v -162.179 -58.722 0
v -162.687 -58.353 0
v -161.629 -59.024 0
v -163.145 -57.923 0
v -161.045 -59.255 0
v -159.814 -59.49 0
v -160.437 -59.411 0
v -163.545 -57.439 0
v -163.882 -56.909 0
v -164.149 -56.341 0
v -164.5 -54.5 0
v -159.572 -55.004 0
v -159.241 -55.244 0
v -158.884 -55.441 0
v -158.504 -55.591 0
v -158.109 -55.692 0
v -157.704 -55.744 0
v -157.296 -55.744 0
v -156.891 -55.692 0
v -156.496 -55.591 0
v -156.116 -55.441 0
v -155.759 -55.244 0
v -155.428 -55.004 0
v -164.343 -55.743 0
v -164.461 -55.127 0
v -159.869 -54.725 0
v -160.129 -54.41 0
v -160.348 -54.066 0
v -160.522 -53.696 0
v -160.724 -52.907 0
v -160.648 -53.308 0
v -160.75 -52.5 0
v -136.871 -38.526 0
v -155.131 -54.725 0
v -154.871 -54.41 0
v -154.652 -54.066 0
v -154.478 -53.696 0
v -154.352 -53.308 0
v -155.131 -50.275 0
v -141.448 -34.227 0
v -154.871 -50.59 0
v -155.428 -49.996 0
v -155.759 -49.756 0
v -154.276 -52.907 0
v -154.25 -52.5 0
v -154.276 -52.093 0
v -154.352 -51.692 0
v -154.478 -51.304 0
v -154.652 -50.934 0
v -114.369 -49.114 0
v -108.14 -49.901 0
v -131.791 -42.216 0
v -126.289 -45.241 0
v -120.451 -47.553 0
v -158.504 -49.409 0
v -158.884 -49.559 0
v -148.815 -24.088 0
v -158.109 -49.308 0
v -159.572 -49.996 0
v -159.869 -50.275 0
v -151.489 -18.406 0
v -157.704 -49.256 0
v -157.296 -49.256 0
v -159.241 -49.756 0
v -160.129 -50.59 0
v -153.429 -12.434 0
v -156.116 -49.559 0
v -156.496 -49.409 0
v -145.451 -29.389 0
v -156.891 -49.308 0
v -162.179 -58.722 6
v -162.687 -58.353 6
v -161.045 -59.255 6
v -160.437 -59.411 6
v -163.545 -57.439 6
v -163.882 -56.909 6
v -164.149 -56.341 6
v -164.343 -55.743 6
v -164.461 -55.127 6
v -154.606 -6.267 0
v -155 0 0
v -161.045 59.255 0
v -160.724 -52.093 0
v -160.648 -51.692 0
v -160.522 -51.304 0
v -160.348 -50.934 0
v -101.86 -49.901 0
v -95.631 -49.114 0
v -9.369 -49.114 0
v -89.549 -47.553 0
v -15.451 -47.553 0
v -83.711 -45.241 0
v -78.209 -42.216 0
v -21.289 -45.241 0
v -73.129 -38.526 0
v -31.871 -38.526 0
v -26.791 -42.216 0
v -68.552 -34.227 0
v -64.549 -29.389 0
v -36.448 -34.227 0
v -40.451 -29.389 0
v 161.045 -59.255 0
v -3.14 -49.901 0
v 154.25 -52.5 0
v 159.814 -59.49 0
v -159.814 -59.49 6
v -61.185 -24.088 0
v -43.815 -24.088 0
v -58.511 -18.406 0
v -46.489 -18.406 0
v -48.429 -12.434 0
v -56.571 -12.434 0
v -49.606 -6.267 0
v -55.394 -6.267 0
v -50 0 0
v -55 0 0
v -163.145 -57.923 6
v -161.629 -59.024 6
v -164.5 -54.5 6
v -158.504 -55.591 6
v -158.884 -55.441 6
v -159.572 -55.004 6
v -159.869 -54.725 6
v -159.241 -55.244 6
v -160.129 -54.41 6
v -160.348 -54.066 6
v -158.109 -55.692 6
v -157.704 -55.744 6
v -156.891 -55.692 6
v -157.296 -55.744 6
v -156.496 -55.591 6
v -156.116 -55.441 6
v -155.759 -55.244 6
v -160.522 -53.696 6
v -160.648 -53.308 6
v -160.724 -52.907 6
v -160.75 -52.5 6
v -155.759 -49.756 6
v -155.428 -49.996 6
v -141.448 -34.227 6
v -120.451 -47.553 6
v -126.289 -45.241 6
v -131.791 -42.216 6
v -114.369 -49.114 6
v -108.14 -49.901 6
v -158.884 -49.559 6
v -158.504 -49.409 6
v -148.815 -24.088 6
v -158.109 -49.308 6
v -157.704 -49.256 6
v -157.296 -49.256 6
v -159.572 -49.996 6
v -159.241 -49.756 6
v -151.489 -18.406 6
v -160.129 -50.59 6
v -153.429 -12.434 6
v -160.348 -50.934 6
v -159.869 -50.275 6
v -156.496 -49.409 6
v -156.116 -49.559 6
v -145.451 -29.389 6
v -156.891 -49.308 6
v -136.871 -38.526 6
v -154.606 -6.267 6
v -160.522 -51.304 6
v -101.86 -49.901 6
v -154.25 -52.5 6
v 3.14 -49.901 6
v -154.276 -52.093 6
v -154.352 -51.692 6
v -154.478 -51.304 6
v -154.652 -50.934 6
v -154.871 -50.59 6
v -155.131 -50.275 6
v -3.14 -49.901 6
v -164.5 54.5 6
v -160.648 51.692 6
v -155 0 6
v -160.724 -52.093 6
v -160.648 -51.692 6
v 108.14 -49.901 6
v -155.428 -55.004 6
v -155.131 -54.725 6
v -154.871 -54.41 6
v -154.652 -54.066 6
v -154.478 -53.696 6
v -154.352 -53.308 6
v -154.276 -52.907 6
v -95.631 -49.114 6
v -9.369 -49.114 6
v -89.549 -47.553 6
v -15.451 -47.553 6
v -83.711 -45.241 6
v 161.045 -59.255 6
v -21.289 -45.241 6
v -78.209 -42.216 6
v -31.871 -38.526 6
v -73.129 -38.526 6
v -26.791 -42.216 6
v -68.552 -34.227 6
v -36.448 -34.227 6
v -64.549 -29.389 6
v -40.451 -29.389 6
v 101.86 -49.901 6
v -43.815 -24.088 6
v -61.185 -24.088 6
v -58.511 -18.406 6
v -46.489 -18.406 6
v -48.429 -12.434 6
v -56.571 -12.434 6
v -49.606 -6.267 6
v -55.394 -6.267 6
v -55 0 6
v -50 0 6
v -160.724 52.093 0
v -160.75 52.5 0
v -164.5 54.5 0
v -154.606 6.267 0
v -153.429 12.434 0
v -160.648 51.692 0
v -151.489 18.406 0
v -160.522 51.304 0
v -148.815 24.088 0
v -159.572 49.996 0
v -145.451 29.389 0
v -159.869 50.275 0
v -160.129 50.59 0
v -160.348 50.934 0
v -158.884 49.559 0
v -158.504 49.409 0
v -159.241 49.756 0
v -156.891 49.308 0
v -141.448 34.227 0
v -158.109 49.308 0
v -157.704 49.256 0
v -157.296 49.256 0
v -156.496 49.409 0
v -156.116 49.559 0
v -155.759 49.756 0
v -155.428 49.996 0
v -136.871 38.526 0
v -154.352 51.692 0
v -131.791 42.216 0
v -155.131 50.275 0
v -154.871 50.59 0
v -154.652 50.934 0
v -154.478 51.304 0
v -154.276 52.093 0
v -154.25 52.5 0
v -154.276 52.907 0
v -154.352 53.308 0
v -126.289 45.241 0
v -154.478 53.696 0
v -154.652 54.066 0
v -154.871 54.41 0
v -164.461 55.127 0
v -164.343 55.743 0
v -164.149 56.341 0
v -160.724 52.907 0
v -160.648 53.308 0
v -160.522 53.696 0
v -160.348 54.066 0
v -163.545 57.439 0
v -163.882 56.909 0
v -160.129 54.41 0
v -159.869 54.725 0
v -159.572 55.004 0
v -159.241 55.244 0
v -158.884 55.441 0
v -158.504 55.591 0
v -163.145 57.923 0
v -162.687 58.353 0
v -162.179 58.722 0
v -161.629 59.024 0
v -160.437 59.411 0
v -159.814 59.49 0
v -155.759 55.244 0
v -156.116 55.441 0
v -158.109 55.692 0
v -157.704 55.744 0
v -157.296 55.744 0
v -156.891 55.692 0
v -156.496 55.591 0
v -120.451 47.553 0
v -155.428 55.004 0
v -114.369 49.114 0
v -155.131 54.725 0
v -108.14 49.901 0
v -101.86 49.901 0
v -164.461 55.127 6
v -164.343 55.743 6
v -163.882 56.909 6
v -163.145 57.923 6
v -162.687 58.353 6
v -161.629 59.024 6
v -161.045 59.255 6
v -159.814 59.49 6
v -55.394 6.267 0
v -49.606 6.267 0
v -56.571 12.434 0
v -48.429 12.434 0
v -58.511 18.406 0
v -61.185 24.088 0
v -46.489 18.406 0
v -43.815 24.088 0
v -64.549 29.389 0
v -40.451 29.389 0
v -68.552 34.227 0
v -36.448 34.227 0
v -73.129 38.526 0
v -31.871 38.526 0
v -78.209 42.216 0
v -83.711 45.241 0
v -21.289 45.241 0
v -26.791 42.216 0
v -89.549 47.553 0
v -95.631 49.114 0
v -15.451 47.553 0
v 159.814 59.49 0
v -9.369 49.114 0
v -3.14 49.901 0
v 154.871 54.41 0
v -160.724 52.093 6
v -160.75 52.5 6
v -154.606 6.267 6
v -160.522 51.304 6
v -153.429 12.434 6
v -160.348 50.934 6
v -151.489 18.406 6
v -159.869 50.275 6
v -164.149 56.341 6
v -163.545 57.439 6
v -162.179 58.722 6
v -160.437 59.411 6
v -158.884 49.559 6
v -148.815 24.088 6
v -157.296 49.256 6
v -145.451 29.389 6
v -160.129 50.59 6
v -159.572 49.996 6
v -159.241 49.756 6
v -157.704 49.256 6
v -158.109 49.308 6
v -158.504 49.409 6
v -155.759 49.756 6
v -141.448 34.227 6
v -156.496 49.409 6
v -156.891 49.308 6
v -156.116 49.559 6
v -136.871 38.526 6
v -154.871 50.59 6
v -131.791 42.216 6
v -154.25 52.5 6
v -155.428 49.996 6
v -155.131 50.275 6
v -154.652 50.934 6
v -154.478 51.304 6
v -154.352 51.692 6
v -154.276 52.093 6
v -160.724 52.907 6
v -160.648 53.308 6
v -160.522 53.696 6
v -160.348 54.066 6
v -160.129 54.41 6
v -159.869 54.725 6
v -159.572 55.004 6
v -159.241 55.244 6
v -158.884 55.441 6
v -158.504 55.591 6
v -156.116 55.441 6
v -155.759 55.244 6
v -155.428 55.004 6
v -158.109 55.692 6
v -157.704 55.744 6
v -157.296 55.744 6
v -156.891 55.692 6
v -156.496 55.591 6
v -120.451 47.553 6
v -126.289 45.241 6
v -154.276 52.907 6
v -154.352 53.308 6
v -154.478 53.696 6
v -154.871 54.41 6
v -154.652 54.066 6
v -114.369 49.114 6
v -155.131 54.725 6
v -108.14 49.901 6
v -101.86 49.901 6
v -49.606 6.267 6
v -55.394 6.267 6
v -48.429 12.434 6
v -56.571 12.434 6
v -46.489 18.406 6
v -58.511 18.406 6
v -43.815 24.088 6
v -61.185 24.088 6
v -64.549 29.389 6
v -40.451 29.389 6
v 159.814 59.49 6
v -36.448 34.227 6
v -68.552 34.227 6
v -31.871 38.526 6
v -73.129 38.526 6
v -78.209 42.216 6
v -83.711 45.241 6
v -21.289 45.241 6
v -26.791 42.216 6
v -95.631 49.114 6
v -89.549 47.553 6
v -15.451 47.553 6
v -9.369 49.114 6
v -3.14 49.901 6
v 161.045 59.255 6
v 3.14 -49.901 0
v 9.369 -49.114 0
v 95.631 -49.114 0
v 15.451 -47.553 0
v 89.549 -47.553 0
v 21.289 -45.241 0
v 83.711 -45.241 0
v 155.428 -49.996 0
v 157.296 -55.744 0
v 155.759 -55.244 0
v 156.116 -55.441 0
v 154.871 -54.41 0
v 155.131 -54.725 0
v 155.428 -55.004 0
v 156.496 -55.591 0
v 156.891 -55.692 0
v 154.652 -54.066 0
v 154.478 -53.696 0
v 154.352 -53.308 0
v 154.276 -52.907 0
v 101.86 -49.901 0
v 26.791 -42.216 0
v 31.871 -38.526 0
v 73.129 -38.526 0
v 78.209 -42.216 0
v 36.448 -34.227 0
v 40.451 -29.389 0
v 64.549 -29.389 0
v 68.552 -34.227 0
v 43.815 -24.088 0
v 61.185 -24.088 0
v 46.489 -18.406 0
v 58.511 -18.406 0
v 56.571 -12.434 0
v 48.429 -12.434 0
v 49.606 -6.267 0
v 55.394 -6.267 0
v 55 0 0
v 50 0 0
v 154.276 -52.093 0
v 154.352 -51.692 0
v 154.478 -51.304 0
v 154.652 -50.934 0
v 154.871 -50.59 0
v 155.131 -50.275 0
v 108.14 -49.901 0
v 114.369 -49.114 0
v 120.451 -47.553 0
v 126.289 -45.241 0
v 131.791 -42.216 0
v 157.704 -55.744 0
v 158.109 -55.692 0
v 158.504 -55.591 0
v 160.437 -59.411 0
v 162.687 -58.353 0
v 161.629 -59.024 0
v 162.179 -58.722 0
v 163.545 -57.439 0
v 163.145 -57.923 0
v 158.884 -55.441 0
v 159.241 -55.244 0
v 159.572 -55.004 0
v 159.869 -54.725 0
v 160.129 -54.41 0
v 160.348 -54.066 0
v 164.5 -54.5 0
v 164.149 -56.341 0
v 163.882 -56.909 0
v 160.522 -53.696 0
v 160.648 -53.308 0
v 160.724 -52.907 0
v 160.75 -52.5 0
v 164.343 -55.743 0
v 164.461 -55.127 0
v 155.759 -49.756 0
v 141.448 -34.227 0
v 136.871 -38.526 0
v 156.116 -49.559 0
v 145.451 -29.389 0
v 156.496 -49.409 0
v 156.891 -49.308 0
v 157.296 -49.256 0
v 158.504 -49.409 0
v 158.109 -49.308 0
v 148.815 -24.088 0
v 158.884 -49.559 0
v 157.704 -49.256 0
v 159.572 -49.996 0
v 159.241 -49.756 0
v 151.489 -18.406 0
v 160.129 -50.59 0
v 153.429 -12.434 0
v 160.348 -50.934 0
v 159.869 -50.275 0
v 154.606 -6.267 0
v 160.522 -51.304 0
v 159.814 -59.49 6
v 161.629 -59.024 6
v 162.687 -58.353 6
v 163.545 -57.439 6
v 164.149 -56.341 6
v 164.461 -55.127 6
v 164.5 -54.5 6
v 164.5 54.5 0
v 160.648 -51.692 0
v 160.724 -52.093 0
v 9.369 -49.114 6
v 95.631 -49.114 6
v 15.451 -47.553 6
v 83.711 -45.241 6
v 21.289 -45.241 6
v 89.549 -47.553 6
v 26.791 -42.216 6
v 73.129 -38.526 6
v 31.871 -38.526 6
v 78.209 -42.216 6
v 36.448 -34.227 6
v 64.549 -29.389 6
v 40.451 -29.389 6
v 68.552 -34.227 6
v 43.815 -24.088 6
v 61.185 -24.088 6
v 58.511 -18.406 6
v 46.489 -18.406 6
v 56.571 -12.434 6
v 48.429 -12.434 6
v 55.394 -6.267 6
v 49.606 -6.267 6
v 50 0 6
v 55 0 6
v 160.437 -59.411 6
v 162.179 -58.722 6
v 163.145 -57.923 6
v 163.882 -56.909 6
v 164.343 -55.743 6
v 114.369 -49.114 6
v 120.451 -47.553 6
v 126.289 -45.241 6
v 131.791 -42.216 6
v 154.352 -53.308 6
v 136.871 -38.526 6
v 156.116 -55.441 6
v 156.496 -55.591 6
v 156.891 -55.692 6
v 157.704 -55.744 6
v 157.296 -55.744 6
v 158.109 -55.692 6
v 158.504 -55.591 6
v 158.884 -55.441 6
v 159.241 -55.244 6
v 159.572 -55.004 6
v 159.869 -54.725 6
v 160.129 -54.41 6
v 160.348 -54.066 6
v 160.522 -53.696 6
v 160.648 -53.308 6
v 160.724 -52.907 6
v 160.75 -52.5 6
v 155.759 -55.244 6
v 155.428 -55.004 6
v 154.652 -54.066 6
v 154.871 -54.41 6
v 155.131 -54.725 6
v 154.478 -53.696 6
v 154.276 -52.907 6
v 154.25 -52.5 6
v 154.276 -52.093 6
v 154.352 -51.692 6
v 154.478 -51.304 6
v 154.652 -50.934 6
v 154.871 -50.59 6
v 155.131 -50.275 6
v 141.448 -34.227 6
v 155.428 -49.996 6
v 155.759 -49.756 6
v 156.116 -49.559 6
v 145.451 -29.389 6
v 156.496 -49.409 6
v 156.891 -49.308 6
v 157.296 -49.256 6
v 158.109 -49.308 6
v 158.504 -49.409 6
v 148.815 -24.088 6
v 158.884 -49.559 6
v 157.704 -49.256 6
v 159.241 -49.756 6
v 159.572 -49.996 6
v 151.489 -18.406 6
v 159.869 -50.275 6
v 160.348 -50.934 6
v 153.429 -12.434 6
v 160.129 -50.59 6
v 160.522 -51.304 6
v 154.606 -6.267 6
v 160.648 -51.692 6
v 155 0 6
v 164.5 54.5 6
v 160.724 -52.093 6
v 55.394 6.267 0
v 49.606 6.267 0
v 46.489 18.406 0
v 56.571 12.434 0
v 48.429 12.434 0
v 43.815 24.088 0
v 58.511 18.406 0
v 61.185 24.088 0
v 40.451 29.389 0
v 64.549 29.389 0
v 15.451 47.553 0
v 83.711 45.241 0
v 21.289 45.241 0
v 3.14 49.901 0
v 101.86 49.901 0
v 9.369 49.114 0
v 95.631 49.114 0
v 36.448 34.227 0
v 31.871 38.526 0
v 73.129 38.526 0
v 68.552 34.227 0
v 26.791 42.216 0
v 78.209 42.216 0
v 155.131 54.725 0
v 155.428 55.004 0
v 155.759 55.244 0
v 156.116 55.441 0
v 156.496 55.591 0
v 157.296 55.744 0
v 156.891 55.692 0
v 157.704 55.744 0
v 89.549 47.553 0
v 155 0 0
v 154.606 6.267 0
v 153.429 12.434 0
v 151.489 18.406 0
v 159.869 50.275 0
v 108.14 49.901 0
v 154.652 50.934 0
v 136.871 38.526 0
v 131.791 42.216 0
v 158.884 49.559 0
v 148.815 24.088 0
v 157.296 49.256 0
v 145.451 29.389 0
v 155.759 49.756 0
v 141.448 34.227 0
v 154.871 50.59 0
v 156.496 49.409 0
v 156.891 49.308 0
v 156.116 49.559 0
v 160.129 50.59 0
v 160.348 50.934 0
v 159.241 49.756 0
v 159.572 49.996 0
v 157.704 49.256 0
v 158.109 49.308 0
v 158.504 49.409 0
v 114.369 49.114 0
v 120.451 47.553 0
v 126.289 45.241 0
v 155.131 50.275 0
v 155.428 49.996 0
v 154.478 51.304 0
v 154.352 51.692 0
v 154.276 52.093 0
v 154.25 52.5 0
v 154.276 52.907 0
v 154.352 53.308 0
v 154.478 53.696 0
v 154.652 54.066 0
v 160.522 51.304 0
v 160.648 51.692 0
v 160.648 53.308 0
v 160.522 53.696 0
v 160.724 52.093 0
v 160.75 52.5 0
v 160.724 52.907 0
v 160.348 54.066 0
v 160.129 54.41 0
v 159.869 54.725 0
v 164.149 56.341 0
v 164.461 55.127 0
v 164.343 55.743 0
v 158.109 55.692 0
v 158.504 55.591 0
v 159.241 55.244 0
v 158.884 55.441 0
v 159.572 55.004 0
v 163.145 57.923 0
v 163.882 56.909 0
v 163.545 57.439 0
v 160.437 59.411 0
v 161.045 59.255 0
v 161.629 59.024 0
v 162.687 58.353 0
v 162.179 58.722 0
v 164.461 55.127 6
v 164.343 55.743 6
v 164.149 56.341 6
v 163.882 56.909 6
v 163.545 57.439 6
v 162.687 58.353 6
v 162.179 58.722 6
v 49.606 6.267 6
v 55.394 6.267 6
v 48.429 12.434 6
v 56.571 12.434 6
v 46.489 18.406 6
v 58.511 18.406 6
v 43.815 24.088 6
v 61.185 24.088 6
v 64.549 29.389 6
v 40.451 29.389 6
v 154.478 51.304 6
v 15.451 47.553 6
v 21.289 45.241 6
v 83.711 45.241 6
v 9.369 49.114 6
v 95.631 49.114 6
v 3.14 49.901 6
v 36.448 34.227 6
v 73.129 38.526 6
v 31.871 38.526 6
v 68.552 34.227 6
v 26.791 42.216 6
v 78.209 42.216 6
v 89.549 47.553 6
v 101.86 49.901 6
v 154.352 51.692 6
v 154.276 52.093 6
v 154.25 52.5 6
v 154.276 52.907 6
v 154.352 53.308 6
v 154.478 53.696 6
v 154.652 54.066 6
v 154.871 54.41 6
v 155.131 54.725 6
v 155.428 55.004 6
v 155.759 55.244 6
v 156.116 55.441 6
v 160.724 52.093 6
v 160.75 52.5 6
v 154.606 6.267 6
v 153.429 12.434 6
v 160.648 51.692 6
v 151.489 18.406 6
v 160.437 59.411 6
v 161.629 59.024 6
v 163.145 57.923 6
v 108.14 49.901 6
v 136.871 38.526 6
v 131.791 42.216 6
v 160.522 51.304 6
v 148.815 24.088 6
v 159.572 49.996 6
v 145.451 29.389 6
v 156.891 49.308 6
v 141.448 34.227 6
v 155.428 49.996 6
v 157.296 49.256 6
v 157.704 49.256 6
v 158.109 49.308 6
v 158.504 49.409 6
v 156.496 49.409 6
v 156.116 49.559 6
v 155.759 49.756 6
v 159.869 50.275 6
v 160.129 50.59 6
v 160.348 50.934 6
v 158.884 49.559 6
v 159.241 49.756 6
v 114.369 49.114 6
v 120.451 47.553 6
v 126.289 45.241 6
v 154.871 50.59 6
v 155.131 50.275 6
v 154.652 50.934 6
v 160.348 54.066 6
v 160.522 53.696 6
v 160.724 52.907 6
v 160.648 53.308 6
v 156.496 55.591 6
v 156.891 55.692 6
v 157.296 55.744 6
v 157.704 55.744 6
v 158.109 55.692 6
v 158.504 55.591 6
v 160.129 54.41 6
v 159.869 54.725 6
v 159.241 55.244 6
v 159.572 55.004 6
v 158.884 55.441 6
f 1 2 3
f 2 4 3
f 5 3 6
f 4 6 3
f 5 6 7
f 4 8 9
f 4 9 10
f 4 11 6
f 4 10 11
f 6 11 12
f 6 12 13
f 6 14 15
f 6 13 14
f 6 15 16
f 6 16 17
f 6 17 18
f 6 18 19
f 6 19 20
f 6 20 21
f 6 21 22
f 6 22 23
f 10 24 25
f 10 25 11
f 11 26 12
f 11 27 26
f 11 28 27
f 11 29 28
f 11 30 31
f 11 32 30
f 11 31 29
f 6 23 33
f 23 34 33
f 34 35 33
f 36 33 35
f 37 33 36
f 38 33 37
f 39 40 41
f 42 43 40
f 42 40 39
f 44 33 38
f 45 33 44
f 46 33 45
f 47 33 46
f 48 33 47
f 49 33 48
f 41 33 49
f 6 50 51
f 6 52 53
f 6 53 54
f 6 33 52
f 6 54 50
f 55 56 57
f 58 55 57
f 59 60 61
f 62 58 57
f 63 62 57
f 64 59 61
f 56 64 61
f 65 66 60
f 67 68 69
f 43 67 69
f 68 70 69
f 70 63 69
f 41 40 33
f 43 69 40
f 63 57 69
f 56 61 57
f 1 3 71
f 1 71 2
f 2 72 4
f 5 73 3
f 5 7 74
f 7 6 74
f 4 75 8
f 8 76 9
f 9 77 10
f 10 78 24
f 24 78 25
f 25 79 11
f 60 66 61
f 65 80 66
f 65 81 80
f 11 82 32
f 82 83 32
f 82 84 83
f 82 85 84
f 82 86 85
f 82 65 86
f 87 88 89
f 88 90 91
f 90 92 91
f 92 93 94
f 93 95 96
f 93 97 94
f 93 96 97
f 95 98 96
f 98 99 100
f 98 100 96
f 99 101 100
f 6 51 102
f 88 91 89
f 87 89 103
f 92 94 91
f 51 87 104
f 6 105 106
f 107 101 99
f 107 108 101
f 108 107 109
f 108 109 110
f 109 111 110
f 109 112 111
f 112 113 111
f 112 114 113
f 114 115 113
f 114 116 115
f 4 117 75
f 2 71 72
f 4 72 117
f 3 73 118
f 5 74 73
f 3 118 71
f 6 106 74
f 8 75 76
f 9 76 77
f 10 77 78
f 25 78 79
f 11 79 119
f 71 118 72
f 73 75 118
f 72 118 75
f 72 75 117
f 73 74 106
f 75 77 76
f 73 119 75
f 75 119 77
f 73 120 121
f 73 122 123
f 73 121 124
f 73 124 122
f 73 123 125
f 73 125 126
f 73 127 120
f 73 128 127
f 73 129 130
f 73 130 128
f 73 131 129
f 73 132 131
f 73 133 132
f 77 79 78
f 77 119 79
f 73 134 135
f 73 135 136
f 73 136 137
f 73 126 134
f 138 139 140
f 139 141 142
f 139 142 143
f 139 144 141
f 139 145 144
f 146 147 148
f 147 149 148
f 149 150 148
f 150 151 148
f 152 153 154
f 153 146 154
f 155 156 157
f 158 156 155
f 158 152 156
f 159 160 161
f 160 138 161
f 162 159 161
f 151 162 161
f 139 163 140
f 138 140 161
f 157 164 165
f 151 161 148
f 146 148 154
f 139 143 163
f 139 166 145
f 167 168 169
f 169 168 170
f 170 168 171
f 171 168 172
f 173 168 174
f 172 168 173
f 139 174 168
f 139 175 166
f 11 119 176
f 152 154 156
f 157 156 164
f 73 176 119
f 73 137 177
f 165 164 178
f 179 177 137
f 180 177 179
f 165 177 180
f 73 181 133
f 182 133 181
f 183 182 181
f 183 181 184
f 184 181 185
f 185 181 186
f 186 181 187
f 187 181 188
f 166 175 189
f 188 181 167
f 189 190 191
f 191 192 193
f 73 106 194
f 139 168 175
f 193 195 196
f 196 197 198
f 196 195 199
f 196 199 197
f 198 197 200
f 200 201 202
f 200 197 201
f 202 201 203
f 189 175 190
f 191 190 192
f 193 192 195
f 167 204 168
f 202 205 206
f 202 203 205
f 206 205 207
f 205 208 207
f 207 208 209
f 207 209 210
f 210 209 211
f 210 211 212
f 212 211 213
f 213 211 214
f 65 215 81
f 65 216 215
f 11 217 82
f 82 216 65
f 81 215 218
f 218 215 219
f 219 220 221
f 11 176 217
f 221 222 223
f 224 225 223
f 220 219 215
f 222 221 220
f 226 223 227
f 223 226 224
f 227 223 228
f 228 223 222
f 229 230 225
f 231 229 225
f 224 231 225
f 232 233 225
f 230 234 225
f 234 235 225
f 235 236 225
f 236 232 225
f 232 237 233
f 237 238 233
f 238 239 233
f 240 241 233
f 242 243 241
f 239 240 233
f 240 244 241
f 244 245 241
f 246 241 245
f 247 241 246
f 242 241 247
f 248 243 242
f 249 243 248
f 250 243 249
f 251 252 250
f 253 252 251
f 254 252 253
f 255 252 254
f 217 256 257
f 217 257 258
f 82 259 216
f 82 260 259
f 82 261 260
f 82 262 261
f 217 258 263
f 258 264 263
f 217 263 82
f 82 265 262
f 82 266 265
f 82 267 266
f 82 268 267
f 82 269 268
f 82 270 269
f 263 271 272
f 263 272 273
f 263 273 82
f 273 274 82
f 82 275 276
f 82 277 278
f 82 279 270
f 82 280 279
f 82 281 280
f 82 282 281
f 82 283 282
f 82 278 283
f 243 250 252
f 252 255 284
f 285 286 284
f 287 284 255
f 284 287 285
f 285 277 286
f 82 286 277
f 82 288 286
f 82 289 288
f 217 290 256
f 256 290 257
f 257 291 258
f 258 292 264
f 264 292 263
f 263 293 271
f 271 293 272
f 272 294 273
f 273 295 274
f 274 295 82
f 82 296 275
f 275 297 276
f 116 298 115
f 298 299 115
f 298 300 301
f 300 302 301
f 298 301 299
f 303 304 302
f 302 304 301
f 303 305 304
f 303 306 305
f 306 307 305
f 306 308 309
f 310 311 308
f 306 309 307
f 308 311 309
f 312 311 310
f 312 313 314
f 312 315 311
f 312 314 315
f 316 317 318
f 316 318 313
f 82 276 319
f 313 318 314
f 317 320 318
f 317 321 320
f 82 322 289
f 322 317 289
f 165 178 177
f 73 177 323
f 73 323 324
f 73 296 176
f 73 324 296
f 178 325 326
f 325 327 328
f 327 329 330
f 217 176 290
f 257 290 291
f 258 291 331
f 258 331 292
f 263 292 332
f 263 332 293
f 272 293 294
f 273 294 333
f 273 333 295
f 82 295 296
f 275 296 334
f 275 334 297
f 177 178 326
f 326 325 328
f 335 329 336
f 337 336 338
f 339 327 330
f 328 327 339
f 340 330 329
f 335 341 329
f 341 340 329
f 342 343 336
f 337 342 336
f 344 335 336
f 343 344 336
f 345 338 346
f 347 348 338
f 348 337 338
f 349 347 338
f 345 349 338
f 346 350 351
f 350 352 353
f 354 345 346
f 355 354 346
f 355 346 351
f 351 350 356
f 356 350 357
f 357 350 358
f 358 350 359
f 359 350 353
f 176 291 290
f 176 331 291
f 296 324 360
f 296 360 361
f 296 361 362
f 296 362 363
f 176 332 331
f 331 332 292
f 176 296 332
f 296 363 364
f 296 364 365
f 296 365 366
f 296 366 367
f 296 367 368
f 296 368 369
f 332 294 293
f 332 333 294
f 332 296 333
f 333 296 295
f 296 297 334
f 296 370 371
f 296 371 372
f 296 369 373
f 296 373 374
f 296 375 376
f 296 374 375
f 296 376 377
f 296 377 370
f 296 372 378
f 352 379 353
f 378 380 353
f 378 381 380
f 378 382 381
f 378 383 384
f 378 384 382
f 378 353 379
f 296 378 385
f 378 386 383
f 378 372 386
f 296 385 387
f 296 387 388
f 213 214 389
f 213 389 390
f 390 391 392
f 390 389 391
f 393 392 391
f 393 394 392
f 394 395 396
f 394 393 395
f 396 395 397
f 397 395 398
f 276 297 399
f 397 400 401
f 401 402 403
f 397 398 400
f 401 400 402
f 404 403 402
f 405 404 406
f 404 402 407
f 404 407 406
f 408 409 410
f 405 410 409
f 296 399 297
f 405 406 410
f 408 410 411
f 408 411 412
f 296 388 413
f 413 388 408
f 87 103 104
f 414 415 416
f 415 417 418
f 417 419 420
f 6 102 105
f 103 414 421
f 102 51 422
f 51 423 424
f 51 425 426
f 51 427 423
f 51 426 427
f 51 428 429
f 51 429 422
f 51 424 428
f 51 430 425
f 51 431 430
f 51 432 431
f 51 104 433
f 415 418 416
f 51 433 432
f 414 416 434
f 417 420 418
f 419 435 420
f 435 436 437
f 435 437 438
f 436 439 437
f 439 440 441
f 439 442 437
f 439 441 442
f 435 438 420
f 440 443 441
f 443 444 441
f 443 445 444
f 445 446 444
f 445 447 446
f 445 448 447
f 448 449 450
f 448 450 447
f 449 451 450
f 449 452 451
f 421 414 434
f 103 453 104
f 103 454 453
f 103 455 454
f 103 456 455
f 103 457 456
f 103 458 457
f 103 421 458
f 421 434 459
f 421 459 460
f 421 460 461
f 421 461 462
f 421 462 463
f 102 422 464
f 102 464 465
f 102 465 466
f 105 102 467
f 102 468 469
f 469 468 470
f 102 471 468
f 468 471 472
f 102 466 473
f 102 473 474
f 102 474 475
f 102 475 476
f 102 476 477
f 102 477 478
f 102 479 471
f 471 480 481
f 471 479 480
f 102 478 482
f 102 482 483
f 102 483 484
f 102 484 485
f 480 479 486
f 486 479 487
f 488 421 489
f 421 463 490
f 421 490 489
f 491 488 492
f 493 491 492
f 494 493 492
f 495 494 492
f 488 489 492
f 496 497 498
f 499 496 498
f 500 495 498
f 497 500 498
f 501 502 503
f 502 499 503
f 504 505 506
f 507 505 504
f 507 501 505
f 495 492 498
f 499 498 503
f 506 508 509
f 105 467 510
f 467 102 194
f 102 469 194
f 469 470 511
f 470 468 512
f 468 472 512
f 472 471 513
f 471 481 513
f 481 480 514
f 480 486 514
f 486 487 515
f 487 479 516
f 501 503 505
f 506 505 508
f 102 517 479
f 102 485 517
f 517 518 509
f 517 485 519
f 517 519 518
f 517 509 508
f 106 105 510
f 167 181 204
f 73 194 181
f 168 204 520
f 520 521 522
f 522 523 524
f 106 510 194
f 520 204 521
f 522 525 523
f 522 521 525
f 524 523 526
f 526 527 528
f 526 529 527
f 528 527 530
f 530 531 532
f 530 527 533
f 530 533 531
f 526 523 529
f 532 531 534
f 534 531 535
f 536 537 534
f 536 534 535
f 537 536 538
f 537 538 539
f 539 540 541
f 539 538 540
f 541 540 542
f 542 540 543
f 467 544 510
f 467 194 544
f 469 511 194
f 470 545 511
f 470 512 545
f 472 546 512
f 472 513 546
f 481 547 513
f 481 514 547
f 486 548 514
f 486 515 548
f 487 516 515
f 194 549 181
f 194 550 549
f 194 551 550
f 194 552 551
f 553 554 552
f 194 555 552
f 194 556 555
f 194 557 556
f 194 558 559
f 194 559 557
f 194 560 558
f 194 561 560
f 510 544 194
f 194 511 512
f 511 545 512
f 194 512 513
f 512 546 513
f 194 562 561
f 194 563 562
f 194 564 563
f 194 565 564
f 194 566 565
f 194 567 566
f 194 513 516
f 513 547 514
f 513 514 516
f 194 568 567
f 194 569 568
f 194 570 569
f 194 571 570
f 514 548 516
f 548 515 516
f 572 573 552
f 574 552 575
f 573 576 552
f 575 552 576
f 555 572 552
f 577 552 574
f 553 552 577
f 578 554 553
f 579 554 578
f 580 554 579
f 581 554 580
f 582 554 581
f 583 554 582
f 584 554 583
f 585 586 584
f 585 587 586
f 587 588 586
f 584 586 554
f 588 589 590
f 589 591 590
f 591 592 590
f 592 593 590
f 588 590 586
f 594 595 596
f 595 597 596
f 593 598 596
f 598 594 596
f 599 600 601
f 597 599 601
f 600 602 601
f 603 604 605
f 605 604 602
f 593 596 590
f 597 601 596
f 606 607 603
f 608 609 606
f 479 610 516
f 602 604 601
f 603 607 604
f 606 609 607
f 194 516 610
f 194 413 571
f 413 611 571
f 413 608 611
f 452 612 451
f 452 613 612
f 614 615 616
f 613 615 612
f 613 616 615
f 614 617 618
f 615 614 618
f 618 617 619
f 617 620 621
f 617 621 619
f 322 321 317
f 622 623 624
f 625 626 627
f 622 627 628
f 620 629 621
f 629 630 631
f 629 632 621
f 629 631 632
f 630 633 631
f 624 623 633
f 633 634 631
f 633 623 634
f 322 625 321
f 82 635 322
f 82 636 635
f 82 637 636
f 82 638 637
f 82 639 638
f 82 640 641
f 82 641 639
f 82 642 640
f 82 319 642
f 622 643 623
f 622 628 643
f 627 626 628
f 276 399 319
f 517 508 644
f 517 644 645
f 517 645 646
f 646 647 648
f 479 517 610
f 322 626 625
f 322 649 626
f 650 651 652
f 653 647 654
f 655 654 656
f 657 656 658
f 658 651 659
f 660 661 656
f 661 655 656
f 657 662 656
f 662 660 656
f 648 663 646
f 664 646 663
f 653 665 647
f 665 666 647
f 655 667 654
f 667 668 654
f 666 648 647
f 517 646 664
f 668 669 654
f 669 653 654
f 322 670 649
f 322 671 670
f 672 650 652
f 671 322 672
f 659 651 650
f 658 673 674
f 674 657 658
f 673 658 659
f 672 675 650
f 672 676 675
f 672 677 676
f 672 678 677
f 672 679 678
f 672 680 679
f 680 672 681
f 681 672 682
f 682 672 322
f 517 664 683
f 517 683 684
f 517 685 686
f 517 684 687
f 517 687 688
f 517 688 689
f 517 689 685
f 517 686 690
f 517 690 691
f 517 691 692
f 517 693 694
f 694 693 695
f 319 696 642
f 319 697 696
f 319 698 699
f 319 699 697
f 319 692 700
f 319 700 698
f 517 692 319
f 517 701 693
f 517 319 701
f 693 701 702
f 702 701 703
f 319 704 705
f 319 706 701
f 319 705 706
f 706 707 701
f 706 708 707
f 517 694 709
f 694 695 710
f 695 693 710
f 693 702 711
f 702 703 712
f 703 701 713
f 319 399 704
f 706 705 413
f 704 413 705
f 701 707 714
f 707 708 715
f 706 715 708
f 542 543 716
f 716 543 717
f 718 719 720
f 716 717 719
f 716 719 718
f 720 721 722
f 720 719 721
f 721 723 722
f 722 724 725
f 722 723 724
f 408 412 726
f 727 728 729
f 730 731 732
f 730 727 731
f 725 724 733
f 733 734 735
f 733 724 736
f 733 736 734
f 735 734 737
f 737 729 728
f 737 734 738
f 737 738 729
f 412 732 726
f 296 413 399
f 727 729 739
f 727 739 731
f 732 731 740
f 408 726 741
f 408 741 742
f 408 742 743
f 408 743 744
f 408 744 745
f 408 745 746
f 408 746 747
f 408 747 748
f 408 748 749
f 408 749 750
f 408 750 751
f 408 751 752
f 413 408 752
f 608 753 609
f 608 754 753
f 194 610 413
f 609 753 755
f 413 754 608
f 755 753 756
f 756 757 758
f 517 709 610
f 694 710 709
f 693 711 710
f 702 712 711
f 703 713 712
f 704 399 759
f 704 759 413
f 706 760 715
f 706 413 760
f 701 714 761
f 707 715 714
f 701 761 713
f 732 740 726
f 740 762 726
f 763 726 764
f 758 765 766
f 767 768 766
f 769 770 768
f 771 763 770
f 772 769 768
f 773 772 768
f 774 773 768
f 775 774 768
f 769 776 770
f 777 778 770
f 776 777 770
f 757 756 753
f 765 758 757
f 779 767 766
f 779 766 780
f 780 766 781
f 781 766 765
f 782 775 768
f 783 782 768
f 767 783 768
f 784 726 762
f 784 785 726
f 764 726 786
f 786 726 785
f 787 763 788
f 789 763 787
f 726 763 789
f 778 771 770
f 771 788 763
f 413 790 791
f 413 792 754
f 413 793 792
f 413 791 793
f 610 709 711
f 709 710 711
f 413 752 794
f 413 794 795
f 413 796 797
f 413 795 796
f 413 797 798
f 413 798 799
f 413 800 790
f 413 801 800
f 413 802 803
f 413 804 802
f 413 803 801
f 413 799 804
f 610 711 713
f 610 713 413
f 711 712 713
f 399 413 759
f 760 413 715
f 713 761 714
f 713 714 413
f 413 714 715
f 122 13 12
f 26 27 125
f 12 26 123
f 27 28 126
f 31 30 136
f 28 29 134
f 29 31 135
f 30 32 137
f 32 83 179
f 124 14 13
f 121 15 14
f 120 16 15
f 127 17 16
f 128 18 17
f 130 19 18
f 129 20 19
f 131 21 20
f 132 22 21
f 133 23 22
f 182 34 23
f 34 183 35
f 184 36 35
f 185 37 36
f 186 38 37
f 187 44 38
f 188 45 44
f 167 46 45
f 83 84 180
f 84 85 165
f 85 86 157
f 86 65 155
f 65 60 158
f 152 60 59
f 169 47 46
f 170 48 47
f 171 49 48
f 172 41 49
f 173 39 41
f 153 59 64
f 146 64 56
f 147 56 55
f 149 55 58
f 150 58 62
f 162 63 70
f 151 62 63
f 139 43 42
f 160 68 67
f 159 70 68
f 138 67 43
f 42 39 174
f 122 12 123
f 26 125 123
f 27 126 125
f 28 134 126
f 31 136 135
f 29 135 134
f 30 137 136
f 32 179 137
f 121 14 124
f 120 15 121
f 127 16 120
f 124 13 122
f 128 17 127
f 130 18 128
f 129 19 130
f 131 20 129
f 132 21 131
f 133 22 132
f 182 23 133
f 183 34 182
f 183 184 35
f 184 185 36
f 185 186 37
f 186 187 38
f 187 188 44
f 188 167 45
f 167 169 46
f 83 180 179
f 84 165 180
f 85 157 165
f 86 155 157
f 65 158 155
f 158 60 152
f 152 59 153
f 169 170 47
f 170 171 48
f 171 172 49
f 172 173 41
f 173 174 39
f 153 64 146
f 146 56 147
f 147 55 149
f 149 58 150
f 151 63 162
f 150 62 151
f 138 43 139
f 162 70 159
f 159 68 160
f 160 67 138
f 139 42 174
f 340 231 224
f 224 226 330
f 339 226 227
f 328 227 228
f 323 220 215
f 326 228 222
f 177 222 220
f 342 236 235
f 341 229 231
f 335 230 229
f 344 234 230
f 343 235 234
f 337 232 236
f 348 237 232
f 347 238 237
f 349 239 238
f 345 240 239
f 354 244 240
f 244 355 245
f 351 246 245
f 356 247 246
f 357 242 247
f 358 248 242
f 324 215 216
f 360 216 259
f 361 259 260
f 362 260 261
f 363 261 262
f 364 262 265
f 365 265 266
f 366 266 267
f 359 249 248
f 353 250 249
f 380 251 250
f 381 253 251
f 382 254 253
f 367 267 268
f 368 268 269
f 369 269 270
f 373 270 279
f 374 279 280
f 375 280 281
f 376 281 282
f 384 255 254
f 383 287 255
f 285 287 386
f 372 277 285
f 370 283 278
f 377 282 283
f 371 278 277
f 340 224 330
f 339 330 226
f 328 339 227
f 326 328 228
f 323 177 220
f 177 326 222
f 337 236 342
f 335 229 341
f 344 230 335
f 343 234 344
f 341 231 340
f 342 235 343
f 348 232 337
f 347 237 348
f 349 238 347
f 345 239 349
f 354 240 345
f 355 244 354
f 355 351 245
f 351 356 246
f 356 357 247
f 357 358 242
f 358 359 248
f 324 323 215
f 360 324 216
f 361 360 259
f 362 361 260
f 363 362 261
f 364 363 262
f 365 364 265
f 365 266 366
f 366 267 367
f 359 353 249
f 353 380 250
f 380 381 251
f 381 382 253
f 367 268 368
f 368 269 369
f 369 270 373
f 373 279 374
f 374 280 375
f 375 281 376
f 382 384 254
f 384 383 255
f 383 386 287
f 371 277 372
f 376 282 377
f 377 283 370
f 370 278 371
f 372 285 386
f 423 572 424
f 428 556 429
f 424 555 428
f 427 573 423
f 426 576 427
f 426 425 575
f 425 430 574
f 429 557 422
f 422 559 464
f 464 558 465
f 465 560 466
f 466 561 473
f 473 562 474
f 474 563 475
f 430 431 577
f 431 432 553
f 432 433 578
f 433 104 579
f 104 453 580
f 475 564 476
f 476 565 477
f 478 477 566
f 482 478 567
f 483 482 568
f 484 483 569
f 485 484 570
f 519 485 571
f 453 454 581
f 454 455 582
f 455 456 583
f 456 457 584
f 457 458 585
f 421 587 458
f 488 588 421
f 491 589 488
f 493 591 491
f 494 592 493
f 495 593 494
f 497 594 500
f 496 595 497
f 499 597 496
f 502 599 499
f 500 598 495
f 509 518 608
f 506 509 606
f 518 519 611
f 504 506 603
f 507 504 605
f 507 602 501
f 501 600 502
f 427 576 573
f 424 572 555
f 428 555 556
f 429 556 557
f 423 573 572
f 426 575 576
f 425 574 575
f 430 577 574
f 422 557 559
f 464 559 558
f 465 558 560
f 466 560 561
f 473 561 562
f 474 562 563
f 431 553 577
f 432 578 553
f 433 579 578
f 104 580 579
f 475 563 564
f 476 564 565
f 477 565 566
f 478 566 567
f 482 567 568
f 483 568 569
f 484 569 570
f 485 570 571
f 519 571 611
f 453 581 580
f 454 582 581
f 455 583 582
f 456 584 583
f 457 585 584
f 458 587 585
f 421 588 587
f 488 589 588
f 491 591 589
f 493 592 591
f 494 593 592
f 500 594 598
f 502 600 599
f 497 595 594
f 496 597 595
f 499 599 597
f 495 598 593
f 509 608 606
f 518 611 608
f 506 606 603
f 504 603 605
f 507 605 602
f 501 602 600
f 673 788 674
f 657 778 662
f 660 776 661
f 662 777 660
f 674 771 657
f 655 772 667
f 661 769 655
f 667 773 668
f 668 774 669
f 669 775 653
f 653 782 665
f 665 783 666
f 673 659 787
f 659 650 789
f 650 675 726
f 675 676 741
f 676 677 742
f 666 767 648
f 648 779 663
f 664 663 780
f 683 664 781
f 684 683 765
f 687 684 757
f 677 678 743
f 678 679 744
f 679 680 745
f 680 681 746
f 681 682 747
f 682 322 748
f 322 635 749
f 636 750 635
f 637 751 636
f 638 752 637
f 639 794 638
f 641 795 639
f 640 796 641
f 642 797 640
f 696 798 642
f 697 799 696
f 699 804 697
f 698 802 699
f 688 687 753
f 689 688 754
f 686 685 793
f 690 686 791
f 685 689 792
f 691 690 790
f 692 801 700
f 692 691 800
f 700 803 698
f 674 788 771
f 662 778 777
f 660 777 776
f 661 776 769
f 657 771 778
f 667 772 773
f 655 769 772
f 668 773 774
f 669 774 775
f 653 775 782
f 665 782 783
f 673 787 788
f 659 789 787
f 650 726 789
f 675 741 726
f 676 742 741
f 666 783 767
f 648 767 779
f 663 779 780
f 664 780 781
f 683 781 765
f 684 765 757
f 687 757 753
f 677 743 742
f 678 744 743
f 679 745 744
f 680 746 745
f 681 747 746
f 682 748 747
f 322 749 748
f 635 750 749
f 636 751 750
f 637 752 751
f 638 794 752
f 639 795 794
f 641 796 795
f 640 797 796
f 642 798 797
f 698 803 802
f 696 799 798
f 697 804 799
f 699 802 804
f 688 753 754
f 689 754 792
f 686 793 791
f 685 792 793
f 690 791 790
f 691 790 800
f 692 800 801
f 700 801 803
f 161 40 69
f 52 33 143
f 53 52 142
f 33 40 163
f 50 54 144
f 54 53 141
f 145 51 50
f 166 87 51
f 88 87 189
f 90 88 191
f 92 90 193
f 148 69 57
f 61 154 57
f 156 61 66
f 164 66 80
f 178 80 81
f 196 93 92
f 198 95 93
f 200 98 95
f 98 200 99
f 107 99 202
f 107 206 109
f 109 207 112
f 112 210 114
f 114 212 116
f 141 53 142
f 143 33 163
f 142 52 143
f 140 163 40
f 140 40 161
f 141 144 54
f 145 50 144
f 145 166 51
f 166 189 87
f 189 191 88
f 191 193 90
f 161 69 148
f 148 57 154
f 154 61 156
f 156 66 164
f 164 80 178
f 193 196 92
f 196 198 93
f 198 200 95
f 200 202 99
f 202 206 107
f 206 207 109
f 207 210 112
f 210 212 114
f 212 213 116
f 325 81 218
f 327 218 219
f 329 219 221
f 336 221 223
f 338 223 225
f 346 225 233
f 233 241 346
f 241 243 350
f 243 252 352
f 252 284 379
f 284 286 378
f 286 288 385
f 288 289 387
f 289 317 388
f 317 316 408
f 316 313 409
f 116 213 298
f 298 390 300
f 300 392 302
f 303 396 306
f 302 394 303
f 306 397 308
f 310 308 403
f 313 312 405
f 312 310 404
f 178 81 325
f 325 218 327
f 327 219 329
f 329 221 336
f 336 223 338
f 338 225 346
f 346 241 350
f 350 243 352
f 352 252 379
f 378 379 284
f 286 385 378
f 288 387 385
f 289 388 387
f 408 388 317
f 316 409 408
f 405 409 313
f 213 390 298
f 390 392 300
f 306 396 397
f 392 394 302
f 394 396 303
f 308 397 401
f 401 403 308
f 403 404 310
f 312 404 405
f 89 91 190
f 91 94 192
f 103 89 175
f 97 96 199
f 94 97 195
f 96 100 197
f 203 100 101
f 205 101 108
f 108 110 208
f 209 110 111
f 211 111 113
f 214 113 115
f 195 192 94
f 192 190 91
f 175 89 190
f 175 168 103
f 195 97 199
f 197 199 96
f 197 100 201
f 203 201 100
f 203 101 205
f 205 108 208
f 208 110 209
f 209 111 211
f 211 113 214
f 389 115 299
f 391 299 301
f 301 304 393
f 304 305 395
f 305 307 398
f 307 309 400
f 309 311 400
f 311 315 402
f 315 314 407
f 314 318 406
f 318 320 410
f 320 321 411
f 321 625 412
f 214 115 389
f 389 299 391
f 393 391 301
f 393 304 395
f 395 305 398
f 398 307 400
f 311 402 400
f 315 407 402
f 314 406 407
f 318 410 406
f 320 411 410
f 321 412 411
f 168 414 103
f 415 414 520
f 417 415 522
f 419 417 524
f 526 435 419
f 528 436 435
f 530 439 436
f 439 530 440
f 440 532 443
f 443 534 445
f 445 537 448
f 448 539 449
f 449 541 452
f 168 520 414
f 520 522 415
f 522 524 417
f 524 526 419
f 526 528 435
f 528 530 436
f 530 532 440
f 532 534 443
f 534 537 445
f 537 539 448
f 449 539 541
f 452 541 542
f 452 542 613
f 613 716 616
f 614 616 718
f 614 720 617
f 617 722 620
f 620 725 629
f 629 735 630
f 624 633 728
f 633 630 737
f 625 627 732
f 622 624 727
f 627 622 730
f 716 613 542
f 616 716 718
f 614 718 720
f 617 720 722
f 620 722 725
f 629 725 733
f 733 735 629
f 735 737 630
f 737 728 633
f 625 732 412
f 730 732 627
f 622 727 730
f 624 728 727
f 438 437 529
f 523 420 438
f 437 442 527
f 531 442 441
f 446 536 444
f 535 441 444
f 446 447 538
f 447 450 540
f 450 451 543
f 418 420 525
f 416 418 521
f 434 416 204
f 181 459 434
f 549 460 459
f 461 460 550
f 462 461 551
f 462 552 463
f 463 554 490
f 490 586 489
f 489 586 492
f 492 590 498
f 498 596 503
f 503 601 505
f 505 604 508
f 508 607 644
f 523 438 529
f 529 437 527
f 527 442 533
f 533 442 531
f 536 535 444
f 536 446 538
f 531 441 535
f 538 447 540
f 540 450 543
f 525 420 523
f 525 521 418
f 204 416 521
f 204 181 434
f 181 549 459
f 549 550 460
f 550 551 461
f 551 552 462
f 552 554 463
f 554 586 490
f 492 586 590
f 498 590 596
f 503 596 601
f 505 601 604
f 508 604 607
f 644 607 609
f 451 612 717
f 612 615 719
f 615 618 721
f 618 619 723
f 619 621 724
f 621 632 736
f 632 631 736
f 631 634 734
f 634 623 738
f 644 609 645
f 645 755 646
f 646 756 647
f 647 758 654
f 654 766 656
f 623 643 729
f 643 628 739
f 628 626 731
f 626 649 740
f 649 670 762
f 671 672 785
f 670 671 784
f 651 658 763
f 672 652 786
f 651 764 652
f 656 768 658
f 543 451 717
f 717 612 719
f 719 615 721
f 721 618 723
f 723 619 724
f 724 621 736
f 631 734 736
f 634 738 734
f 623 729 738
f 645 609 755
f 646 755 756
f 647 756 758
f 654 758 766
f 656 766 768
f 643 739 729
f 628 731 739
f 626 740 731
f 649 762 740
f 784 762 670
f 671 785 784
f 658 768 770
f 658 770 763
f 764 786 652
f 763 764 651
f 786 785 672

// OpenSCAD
$fn = 50;

difference() {
	union() {
		hull() {
			translate(v = [-159.5, 54.5, 0]) {
				cylinder(h = 6, r = 5);
			}
			translate(v = [159.5, 54.5, 0]) {
				cylinder(h = 6, r = 5);
			}
			translate(v = [-159.5, -54.5, 0]) {
				cylinder(h = 6, r = 5);
			}
			translate(v = [159.5, -54.5, 0]) {
				cylinder(h = 6, r = 5);
			}
		}
	}
	union() {
		translate(v = [-157.5, -52.5, -100.0]) {
			cylinder(h = 200, r = 3.25);
		}
		translate(v = [-157.5, 52.5, -100.0]) {
			cylinder(h = 200, r = 3.25);
		}
		translate(v = [157.5, -52.5, -100.0]) {
			cylinder(h = 200, r = 3.25);
		}
		translate(v = [157.5, 52.5, -100.0]) {
			cylinder(h = 200, r = 3.25);
		}
		translate(v = [-157.5, -52.5, -100.0]) {
			cylinder(h = 200, r = 1.8);
		}
		translate(v = [-157.5, 52.5, -100.0]) {
			cylinder(h = 200, r = 1.8);
		}
		translate(v = [157.5, -52.5, -100.0]) {
			cylinder(h = 200, r = 1.8);
		}
		translate(v = [157.5, 52.5, -100.0]) {
			cylinder(h = 200, r = 1.8);
		}
		translate(v = [-105.0, 0, 0.0]) {
			cylinder(h = 6, r = 50.0);
		}
		cylinder(h = 6, r = 50.0);
		translate(v = [105.0, 0, 0.0]) {
			cylinder(h = 6, r = 50.0);
		}
	}
}
